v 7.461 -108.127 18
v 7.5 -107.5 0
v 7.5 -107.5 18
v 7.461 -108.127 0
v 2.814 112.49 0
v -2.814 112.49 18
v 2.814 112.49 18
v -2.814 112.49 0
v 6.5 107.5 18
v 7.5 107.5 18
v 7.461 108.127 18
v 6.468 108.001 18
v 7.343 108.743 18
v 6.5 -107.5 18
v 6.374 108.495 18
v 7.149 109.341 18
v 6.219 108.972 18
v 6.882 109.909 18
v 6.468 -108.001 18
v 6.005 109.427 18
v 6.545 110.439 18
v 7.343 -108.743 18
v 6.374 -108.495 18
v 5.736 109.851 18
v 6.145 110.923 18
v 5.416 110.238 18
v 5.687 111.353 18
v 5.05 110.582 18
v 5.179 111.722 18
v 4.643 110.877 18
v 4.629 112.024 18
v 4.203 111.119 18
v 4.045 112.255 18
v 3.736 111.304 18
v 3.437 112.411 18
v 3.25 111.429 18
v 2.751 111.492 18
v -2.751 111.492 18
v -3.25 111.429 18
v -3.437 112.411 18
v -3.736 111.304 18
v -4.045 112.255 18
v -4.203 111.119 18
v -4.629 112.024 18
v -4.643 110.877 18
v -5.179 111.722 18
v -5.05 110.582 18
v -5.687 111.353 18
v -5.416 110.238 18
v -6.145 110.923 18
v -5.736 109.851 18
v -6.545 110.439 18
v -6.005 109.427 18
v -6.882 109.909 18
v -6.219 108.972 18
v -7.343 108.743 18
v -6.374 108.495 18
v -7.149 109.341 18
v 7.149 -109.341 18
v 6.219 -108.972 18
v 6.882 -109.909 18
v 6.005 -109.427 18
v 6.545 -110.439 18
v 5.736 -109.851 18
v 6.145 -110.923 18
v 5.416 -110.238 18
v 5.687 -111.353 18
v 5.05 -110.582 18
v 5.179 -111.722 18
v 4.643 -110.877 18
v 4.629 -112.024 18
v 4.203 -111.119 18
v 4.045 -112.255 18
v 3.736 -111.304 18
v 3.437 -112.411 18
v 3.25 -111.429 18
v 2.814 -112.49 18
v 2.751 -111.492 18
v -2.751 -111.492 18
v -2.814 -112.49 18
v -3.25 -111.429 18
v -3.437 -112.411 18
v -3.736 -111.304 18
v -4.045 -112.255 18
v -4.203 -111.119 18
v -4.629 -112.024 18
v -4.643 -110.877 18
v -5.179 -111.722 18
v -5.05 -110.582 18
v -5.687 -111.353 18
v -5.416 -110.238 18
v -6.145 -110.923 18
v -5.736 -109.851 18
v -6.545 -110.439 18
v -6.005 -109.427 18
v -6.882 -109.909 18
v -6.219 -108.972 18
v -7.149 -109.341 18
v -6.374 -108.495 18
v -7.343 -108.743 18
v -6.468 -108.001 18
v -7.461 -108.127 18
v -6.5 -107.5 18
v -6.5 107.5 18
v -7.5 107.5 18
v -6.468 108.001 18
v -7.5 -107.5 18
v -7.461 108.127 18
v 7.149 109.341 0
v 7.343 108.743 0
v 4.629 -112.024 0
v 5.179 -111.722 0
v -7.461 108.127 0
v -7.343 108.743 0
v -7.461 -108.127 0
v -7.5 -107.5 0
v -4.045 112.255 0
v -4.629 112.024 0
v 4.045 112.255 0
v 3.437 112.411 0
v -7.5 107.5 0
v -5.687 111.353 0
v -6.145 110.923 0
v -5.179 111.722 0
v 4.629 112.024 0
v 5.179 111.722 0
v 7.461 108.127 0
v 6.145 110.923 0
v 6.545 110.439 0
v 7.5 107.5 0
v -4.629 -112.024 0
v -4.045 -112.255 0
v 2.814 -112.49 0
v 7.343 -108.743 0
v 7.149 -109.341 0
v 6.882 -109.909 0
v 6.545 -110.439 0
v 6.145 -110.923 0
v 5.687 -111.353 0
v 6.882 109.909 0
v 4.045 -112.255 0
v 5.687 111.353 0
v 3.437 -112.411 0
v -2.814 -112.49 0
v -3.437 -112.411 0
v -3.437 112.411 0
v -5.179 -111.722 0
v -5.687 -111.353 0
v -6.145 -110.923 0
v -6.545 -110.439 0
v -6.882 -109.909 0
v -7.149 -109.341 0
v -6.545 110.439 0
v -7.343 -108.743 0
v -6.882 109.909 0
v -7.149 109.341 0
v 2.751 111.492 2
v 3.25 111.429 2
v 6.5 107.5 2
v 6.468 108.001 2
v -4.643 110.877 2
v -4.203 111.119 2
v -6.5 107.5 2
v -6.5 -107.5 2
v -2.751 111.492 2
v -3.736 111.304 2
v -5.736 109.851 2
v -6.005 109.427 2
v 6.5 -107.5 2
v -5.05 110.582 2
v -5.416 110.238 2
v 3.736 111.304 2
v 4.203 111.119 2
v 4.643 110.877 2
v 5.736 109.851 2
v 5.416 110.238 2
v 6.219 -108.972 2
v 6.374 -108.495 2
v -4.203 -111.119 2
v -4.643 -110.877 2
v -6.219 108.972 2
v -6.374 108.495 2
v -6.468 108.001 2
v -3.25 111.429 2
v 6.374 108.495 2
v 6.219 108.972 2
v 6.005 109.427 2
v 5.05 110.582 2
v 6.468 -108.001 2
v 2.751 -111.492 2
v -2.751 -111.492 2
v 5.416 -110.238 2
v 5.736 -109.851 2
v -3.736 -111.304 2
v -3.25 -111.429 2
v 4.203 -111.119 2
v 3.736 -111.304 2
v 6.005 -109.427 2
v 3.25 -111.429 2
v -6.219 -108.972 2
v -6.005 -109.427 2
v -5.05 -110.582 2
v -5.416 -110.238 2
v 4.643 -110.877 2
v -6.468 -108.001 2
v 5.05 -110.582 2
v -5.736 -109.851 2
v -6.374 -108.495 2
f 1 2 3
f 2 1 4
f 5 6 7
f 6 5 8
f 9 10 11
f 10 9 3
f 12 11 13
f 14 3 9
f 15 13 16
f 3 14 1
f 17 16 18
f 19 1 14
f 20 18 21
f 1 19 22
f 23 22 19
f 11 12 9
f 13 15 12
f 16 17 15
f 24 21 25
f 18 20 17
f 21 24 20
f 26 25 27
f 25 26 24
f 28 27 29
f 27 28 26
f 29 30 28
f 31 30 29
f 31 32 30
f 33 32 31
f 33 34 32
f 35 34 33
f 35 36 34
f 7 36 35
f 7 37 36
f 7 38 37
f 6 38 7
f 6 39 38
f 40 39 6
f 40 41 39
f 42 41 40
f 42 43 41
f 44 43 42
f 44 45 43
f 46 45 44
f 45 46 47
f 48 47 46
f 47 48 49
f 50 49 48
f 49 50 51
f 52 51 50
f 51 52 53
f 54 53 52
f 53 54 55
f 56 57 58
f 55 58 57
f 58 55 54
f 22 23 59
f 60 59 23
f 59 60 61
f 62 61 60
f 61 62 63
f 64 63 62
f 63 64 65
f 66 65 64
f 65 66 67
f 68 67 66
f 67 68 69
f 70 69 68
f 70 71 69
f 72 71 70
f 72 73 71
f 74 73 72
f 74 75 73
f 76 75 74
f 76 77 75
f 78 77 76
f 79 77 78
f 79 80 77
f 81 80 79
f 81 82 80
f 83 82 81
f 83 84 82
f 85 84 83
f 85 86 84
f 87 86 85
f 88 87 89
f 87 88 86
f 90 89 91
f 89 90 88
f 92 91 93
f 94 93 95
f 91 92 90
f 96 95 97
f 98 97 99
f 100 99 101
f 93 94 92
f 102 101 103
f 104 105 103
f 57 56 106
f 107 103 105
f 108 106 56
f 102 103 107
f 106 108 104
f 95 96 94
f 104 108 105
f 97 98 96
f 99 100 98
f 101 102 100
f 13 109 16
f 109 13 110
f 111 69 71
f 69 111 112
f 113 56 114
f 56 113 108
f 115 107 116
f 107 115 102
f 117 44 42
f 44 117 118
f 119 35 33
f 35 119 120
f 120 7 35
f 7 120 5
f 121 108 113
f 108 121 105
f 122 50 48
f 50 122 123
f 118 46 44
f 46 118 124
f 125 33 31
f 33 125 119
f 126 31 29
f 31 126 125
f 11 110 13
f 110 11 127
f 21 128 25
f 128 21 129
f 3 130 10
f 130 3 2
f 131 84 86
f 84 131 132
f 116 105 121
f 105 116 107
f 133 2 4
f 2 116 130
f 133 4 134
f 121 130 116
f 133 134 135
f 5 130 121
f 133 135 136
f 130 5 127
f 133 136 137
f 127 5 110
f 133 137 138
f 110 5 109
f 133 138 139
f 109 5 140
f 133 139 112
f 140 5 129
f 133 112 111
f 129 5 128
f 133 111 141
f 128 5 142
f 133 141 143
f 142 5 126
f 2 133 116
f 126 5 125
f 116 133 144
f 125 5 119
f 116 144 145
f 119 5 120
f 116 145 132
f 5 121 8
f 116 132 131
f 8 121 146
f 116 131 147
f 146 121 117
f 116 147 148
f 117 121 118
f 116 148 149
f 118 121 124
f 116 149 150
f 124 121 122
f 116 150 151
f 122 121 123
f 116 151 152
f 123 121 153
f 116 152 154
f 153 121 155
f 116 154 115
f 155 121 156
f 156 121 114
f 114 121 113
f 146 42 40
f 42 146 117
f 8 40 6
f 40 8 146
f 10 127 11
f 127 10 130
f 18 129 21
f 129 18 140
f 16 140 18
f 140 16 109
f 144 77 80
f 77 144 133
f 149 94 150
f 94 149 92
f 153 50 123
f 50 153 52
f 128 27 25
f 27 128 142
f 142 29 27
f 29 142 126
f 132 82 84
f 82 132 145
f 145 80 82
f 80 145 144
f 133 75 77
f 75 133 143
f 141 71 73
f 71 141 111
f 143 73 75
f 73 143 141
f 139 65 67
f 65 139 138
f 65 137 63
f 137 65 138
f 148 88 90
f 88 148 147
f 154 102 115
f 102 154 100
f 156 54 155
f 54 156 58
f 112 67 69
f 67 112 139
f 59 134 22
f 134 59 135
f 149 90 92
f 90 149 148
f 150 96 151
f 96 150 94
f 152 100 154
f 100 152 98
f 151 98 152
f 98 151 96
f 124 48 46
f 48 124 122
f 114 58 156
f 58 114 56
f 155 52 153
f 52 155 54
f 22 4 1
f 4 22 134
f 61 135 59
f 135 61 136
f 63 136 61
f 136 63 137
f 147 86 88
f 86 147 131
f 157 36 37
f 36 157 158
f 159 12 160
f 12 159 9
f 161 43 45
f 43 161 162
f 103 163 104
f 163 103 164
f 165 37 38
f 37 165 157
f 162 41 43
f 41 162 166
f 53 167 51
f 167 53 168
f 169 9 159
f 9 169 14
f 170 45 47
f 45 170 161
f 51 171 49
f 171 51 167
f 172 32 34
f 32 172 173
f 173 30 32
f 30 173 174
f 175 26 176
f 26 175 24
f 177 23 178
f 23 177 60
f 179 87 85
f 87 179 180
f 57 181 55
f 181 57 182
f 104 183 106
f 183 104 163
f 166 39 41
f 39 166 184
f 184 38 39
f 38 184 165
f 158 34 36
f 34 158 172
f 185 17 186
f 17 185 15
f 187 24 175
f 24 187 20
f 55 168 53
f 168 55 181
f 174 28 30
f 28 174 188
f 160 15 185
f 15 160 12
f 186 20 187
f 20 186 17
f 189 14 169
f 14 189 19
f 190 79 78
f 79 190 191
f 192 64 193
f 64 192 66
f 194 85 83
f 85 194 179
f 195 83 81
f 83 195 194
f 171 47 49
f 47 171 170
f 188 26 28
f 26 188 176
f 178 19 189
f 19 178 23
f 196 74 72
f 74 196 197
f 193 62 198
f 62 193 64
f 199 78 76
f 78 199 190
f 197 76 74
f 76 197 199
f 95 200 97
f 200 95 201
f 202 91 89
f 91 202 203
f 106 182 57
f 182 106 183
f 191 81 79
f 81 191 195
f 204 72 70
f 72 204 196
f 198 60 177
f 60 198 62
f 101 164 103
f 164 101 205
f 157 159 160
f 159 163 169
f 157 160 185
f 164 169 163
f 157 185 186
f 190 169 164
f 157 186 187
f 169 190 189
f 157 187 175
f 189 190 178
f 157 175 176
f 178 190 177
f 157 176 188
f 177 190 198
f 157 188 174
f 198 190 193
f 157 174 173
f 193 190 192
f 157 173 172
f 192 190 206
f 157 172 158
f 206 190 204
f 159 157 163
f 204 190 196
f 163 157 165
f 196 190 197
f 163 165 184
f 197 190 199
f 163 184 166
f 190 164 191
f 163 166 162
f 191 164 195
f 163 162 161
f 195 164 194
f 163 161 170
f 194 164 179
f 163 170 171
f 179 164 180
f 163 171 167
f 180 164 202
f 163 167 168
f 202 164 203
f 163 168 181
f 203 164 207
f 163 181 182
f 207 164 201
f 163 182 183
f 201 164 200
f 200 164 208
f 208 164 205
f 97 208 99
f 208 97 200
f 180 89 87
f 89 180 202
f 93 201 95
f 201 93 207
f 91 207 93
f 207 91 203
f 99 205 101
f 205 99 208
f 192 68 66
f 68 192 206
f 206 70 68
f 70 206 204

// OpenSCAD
$fn = 50;


difference() {
	union() {
		hull() {
			translate(v = [-2.5000000000, 107.5000000000, 0]) {
				cylinder(h = 18, r = 5);
			}
			translate(v = [2.5000000000, 107.5000000000, 0]) {
				cylinder(h = 18, r = 5);
			}
			translate(v = [-2.5000000000, -107.5000000000, 0]) {
				cylinder(h = 18, r = 5);
			}
			translate(v = [2.5000000000, -107.5000000000, 0]) {
				cylinder(h = 18, r = 5);
			}
		}
	}
	union() {
		translate(v = [0, 0, 2]) {
			hull() {
				translate(v = [-2.5000000000, 107.5000000000, 0]) {
					cylinder(h = 16, r = 4);
				}
				translate(v = [2.5000000000, 107.5000000000, 0]) {
					cylinder(h = 16, r = 4);
				}
				translate(v = [-2.5000000000, -107.5000000000, 0]) {
					cylinder(h = 16, r = 4);
				}
				translate(v = [2.5000000000, -107.5000000000, 0]) {
					cylinder(h = 16, r = 4);
				}
			}
		}
	}
}
